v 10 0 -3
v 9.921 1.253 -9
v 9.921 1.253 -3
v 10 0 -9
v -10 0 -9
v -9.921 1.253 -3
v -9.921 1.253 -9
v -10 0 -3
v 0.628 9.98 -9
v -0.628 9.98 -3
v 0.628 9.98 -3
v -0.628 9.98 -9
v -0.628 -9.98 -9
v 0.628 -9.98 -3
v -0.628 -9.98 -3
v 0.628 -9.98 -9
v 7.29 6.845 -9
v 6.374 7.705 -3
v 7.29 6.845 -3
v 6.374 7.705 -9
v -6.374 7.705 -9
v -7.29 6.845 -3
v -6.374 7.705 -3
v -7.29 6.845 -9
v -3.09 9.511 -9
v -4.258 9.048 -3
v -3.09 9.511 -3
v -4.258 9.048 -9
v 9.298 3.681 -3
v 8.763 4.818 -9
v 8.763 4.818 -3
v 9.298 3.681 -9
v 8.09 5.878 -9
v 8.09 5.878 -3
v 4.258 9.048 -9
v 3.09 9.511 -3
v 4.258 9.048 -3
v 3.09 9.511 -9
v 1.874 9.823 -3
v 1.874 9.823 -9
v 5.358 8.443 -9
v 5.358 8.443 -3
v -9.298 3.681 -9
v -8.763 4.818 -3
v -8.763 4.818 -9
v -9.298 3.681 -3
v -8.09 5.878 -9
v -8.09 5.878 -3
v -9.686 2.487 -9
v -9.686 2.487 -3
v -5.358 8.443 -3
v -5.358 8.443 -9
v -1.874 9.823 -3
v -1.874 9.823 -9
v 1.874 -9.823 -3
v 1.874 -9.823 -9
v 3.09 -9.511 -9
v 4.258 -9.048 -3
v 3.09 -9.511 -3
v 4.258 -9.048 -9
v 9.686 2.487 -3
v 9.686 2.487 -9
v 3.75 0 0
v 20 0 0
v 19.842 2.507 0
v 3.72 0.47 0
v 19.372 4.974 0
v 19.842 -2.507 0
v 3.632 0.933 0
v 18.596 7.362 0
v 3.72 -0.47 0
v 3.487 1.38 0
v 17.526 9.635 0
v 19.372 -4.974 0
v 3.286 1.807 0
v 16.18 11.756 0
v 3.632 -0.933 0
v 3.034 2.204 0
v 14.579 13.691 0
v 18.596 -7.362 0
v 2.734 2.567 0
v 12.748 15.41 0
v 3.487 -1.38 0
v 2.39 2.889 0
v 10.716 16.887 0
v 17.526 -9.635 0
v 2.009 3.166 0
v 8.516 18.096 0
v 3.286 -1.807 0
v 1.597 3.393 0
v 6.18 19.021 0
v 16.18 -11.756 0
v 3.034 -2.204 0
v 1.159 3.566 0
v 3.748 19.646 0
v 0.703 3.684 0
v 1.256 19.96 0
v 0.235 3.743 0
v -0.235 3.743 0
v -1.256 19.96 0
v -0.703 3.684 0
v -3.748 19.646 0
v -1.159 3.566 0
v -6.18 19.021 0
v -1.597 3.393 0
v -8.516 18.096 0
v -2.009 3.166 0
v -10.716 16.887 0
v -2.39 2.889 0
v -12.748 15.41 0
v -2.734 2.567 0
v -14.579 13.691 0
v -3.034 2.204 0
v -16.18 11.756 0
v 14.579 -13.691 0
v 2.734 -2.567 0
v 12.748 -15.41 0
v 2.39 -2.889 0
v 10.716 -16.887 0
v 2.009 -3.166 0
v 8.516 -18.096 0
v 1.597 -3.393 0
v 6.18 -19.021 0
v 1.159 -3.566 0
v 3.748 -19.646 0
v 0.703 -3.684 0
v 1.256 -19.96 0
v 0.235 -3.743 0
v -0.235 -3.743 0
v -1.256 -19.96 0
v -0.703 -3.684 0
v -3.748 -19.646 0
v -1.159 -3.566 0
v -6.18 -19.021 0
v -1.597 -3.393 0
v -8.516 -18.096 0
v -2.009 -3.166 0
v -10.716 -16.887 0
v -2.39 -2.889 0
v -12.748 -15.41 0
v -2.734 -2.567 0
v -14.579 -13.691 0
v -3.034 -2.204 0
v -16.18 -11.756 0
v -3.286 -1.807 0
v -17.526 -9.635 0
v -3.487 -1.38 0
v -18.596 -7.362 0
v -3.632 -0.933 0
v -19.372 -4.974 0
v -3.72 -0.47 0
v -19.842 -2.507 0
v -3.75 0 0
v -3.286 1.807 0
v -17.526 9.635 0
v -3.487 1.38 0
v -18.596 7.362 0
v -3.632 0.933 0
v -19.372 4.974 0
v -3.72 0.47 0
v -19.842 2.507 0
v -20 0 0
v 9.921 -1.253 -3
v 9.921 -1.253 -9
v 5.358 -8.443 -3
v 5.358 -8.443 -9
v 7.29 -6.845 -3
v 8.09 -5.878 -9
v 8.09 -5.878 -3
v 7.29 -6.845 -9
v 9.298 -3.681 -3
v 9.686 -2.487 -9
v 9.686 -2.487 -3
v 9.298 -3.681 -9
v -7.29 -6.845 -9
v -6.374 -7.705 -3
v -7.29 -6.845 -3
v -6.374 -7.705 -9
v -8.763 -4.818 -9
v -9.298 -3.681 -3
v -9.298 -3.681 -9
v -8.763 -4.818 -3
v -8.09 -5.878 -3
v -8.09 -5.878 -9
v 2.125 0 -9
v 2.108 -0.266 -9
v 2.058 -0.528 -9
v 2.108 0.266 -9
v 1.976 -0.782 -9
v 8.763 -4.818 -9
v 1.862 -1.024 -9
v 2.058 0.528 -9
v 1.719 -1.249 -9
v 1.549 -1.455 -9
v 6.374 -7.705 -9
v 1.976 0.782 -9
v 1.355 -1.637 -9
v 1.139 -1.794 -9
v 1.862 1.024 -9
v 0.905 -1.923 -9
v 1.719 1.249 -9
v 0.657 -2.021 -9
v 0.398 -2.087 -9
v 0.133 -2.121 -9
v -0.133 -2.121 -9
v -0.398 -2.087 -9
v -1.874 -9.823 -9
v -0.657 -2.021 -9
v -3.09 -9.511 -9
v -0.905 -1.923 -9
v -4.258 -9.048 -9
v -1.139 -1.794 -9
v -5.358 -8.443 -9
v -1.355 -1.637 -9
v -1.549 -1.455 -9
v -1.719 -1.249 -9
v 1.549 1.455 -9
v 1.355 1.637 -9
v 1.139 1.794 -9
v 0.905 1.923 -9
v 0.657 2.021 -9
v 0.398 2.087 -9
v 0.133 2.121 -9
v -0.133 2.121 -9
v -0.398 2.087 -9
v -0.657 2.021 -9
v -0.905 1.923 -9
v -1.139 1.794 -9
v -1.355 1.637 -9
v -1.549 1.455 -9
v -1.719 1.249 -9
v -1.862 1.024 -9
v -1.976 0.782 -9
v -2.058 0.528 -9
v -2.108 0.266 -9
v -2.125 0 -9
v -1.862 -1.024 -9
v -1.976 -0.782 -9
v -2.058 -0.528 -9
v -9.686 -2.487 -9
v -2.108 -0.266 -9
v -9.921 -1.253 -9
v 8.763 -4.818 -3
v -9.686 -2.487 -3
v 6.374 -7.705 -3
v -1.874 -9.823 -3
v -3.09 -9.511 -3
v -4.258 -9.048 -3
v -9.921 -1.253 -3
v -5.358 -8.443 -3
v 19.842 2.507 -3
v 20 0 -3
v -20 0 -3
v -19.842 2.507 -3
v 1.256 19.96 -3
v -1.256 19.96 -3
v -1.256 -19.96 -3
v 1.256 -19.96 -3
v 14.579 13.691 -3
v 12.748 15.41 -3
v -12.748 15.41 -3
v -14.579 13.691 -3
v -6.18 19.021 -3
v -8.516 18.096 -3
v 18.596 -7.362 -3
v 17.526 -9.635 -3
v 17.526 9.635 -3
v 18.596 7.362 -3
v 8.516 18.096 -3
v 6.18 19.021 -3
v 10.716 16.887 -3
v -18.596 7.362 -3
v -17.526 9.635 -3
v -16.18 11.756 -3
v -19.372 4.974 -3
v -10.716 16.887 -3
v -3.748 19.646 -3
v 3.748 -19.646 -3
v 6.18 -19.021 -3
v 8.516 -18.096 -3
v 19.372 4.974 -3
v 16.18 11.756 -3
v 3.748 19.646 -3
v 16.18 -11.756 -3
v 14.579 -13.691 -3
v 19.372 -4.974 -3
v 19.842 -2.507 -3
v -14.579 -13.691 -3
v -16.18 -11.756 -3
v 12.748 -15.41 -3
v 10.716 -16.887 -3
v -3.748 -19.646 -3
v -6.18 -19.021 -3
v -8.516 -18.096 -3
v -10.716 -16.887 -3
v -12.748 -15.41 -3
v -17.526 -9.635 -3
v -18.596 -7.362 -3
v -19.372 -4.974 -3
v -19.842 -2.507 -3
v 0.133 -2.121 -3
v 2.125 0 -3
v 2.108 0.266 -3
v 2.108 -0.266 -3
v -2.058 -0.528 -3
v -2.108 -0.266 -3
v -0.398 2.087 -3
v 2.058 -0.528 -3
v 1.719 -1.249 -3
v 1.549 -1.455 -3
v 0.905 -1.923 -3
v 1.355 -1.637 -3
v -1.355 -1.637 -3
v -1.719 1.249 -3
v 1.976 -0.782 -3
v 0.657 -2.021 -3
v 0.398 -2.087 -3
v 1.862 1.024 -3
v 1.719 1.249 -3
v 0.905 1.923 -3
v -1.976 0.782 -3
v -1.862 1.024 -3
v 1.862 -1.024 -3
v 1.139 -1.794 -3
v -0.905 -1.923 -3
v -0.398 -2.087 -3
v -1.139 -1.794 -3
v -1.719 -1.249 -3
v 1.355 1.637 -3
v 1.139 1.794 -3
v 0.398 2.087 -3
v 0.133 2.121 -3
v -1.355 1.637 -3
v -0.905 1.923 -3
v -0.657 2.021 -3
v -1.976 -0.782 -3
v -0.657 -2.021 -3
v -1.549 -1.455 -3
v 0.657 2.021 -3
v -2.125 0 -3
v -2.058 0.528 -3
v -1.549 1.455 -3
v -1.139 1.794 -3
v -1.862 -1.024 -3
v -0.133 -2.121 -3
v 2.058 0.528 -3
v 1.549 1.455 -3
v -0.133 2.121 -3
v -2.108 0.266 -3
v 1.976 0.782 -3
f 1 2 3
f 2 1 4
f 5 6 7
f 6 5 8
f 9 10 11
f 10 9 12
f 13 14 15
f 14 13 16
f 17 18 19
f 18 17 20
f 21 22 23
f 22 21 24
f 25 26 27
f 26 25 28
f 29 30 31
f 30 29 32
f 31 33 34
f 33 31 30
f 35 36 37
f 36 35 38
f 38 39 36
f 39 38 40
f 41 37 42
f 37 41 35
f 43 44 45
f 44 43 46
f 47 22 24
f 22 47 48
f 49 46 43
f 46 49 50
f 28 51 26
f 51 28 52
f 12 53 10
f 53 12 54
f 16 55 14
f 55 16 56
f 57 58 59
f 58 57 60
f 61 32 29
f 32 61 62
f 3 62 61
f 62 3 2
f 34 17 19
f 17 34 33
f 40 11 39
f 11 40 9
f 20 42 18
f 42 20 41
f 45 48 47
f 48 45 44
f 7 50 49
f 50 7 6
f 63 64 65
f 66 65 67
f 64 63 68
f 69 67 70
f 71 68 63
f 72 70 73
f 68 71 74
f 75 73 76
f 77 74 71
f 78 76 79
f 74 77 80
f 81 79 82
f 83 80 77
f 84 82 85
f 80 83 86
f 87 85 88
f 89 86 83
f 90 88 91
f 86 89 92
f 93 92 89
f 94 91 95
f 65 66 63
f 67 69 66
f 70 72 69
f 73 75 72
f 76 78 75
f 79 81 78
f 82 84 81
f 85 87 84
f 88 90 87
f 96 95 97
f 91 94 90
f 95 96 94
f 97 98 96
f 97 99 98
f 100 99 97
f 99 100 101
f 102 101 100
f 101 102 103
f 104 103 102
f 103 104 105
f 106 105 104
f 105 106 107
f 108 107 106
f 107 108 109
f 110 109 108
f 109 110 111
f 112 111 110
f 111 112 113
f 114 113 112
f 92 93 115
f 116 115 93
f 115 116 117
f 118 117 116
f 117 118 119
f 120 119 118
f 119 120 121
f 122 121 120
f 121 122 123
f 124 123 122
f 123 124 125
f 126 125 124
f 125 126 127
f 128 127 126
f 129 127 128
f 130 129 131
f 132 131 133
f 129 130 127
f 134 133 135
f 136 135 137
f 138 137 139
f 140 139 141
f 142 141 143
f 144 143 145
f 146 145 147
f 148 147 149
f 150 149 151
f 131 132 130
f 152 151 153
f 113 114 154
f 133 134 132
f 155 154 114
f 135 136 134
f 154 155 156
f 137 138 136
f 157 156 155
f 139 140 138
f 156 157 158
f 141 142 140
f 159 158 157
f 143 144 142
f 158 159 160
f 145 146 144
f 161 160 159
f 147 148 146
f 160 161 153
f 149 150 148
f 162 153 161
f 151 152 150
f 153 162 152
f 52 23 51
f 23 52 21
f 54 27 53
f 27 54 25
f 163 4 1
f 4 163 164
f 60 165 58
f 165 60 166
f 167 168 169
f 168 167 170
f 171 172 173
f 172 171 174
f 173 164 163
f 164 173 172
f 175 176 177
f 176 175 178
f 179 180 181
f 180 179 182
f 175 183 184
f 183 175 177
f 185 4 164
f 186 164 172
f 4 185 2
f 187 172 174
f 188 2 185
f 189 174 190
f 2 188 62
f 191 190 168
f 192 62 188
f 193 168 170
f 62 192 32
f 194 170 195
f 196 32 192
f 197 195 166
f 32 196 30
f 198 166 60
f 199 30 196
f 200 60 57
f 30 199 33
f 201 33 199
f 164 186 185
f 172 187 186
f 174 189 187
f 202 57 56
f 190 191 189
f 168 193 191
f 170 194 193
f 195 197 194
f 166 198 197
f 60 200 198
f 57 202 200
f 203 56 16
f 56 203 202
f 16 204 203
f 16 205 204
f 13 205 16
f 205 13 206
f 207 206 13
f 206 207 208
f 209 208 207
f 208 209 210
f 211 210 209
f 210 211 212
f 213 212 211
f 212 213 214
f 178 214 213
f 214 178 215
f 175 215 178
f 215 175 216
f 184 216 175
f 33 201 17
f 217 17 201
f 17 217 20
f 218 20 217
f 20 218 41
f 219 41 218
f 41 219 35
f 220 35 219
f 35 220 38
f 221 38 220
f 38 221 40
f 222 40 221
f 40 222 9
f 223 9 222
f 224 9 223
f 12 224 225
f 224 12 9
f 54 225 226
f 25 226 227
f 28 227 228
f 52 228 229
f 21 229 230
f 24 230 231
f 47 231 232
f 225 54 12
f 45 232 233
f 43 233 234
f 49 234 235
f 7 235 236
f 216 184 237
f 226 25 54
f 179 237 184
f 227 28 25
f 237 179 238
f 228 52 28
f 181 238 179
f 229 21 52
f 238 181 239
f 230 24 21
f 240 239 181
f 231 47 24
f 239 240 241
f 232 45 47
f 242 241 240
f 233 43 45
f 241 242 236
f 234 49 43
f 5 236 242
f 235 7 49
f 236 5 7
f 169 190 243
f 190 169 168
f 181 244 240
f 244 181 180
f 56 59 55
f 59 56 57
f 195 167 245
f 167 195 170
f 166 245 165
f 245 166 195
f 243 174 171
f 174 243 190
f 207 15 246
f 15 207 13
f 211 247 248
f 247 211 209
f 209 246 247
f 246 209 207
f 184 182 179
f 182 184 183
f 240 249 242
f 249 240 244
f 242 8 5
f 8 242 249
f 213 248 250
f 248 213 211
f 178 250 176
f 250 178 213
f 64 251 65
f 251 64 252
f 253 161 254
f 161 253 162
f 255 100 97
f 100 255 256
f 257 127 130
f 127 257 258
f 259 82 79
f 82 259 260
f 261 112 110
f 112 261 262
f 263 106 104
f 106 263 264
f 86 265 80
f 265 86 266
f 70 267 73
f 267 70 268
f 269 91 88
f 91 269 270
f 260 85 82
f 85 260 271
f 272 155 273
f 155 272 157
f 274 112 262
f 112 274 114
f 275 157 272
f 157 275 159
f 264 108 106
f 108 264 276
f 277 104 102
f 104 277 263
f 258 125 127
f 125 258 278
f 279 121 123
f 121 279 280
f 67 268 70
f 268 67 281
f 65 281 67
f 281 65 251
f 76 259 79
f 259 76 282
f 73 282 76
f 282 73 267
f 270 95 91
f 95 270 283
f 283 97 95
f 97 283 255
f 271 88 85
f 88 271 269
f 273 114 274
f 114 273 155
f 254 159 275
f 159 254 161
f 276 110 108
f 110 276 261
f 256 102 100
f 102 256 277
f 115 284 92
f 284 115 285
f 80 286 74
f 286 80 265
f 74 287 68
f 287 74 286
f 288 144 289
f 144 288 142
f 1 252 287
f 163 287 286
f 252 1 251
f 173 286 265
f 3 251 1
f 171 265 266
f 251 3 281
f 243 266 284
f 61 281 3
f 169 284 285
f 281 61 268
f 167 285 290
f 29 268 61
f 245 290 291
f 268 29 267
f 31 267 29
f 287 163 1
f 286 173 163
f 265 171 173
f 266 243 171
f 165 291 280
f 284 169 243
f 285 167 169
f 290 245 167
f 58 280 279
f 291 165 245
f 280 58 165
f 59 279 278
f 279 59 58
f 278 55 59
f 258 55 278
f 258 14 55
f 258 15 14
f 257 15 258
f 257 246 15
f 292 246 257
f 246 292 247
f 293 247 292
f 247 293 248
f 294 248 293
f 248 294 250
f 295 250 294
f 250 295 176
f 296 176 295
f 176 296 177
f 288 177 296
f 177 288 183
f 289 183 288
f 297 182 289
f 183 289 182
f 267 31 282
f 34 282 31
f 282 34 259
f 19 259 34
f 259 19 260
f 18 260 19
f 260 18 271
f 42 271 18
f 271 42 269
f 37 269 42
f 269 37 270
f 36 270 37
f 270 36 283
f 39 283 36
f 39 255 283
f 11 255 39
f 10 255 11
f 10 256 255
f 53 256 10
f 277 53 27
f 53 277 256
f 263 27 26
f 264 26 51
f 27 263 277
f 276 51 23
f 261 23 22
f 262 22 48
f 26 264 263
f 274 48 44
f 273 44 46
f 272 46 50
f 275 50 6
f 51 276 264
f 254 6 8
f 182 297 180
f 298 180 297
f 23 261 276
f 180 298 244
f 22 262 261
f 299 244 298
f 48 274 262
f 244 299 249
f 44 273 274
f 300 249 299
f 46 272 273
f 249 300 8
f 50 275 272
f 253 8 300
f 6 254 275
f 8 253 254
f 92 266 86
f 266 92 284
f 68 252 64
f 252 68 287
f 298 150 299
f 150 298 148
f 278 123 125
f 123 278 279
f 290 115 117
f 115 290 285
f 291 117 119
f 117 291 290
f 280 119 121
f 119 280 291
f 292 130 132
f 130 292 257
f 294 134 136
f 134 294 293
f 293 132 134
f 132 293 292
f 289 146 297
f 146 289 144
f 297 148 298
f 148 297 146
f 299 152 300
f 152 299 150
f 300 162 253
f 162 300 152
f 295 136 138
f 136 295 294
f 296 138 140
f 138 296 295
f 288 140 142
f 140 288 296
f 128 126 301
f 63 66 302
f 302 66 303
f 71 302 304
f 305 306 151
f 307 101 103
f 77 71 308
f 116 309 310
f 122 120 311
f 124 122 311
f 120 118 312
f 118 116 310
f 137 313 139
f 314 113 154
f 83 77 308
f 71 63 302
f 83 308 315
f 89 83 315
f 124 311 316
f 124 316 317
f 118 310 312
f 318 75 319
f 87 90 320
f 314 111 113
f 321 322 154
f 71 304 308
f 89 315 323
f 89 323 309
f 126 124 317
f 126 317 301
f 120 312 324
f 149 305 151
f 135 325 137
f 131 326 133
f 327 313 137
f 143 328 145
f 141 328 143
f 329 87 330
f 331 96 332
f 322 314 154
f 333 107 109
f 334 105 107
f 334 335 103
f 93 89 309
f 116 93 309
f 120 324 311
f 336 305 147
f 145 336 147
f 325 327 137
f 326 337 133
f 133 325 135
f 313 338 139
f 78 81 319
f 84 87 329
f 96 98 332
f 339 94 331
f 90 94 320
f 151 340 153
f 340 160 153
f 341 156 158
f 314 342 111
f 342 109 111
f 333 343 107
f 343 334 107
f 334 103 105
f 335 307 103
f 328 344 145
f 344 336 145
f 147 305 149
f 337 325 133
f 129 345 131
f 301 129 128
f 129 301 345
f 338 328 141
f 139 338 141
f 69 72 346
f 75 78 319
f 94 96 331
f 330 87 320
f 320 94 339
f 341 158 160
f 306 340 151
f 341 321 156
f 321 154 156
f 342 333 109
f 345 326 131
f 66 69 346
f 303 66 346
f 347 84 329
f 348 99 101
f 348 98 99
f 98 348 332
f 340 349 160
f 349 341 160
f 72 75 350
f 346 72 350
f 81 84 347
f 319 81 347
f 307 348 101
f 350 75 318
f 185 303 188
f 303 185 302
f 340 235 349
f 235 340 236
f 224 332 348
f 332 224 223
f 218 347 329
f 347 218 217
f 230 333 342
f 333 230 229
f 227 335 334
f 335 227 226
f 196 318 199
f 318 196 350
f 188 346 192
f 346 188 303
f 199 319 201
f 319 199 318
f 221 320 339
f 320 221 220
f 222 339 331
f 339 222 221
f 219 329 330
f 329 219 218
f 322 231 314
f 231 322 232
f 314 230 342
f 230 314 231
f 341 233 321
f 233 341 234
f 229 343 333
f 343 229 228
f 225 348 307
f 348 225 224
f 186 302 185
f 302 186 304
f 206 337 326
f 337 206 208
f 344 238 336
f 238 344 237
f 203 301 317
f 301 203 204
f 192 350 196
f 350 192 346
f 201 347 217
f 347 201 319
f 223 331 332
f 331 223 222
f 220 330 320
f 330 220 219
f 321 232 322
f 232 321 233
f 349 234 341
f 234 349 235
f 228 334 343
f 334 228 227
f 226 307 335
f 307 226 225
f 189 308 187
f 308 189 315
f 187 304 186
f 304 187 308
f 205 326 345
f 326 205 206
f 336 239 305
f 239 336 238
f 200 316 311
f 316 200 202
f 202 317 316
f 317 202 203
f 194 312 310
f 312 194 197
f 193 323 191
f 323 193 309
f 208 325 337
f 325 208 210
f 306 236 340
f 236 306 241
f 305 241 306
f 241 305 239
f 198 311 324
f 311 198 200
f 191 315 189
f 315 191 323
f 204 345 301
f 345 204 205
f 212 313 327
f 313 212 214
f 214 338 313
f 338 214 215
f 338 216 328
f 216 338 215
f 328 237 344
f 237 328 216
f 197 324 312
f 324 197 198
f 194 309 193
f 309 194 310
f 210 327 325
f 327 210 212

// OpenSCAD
$fn = 50;


difference() {
	union() {
		translate(v = [0, 0, -9.0000000000]) {
			cylinder(h = 9, r = 10.0000000000);
		}
		translate(v = [0, 0, -3.0000000000]) {
			cylinder(h = 3, r = 20.0000000000);
		}
	}
	union() {
		translate(v = [0, 0, 0]) {
			rotate(a = [0, 0, 0]) {
				difference() {
					union() {
						#translate(v = [0, 0, -9.0000000000]) {
							cylinder(h = 9, r = 2.0000000000);
						}
						#translate(v = [0, 0, -3]) {
							cylinder(h = 3, r1 = 2.1250000000, r2 = 3.7500000000);
						}
						#translate(v = [0, 0, -9.0000000000]) {
							cylinder(h = 9, r = 2.1250000000);
						}
						#translate(v = [0, 0, -9.0000000000]) {
							cylinder(h = 9, r = 2.0000000000);
						}
					}
					union();
				}
			}
		}
	}
}
